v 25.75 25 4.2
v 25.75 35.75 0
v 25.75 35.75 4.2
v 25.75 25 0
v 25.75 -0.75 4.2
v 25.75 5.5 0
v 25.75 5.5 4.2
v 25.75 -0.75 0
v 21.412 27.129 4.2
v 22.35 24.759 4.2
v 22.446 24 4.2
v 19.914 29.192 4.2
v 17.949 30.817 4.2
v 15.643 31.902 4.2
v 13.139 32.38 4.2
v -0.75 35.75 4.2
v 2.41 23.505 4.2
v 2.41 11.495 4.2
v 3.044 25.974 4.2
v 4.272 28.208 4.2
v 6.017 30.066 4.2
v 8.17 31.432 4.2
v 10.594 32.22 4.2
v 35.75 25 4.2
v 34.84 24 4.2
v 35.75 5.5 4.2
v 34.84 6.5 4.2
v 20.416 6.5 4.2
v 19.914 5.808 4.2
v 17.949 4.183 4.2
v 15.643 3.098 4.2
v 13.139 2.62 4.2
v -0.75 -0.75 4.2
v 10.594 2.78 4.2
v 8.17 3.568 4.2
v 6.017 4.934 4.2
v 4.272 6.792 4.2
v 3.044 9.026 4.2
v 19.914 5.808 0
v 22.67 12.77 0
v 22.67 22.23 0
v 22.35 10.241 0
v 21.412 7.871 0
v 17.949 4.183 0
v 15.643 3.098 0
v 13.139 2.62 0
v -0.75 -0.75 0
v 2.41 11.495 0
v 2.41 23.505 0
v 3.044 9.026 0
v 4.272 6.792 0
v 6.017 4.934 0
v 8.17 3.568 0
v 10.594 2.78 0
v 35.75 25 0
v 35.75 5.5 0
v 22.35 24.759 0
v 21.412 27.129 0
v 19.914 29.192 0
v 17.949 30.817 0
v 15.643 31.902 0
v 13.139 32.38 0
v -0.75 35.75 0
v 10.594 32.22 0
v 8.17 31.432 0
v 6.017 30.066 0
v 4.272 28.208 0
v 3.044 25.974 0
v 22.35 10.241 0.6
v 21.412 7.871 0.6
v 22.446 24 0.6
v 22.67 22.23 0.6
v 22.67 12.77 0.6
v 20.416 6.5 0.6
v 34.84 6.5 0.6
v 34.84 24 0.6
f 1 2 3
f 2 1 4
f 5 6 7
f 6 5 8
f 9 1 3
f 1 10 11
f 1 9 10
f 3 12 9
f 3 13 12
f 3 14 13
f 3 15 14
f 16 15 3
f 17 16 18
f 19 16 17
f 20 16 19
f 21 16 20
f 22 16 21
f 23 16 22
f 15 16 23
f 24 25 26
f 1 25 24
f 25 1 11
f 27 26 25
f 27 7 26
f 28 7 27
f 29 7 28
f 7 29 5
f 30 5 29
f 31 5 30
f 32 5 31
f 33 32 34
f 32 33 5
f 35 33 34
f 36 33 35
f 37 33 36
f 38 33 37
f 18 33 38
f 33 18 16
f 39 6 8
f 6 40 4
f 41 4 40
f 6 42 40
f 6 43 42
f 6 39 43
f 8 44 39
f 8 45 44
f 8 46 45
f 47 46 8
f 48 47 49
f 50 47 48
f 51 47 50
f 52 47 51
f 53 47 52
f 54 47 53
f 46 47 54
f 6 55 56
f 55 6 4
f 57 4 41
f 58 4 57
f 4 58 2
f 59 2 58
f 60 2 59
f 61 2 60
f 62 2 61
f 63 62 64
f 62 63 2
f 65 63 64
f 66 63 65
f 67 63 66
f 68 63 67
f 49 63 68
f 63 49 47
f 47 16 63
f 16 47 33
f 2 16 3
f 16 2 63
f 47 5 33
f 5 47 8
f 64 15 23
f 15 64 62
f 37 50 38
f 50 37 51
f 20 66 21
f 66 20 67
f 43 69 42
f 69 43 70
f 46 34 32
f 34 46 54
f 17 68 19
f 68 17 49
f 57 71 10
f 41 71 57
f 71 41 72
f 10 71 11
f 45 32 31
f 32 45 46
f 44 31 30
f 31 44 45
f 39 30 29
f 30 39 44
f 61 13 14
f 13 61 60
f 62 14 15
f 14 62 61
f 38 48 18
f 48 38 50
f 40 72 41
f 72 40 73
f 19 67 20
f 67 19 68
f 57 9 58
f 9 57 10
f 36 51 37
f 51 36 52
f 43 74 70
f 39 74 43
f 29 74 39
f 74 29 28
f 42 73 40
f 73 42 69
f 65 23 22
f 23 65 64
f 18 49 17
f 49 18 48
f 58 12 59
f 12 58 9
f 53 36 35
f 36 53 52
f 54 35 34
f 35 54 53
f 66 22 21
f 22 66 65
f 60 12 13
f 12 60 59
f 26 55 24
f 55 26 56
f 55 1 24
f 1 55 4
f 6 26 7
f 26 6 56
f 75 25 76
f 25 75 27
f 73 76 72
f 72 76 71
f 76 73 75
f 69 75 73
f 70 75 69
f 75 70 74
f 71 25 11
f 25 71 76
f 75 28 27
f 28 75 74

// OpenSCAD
// Copyright 2025 Nicolai Electronics
// SPDX-License-Identifier: CERN-OHL-P-2.0

// Tanmatsu speaker adapter

$fn=25;

module speaker_adapter() {
    speaker_width = 25;
    speaker_depth = 35;

    adapter_height = 4.2;

    wall_width_size = 2.33;
    wall_depth_size = 2.6;

    hole_width = speaker_width - wall_width_size*2;
    hole_depth = speaker_depth - wall_depth_size*2;
    
    wall_thickness = 1.5;

    difference() {
        union() {
            difference() {
                translate([-wall_thickness/2, -wall_thickness/2, 0]) cube([speaker_width + wall_thickness, speaker_depth + wall_thickness, adapter_height]);
                hull() {
                    translate([wall_width_size + hole_width / 2,wall_depth_size + hole_width / 2,-0.01]) cylinder(h=adapter_height + 0.02, r=hole_width/2);
                    translate([wall_width_size + hole_width / 2, speaker_depth - wall_depth_size - hole_width / 2,-0.01]) cylinder(h=adapter_height + 0.02, r=hole_width/2);
                }
            }
            translate([speaker_width + wall_thickness/2,5.5,0]) cube([10, speaker_depth-15.5, adapter_height]);
    }
        
        translate([speaker_width - wall_width_size - 3,5.5 + 1,0.6]) cube([10 - wall_thickness - wall_width_size + 9, speaker_depth - 15.5 - 2, adapter_height]);
    }
}

speaker_adapter();
